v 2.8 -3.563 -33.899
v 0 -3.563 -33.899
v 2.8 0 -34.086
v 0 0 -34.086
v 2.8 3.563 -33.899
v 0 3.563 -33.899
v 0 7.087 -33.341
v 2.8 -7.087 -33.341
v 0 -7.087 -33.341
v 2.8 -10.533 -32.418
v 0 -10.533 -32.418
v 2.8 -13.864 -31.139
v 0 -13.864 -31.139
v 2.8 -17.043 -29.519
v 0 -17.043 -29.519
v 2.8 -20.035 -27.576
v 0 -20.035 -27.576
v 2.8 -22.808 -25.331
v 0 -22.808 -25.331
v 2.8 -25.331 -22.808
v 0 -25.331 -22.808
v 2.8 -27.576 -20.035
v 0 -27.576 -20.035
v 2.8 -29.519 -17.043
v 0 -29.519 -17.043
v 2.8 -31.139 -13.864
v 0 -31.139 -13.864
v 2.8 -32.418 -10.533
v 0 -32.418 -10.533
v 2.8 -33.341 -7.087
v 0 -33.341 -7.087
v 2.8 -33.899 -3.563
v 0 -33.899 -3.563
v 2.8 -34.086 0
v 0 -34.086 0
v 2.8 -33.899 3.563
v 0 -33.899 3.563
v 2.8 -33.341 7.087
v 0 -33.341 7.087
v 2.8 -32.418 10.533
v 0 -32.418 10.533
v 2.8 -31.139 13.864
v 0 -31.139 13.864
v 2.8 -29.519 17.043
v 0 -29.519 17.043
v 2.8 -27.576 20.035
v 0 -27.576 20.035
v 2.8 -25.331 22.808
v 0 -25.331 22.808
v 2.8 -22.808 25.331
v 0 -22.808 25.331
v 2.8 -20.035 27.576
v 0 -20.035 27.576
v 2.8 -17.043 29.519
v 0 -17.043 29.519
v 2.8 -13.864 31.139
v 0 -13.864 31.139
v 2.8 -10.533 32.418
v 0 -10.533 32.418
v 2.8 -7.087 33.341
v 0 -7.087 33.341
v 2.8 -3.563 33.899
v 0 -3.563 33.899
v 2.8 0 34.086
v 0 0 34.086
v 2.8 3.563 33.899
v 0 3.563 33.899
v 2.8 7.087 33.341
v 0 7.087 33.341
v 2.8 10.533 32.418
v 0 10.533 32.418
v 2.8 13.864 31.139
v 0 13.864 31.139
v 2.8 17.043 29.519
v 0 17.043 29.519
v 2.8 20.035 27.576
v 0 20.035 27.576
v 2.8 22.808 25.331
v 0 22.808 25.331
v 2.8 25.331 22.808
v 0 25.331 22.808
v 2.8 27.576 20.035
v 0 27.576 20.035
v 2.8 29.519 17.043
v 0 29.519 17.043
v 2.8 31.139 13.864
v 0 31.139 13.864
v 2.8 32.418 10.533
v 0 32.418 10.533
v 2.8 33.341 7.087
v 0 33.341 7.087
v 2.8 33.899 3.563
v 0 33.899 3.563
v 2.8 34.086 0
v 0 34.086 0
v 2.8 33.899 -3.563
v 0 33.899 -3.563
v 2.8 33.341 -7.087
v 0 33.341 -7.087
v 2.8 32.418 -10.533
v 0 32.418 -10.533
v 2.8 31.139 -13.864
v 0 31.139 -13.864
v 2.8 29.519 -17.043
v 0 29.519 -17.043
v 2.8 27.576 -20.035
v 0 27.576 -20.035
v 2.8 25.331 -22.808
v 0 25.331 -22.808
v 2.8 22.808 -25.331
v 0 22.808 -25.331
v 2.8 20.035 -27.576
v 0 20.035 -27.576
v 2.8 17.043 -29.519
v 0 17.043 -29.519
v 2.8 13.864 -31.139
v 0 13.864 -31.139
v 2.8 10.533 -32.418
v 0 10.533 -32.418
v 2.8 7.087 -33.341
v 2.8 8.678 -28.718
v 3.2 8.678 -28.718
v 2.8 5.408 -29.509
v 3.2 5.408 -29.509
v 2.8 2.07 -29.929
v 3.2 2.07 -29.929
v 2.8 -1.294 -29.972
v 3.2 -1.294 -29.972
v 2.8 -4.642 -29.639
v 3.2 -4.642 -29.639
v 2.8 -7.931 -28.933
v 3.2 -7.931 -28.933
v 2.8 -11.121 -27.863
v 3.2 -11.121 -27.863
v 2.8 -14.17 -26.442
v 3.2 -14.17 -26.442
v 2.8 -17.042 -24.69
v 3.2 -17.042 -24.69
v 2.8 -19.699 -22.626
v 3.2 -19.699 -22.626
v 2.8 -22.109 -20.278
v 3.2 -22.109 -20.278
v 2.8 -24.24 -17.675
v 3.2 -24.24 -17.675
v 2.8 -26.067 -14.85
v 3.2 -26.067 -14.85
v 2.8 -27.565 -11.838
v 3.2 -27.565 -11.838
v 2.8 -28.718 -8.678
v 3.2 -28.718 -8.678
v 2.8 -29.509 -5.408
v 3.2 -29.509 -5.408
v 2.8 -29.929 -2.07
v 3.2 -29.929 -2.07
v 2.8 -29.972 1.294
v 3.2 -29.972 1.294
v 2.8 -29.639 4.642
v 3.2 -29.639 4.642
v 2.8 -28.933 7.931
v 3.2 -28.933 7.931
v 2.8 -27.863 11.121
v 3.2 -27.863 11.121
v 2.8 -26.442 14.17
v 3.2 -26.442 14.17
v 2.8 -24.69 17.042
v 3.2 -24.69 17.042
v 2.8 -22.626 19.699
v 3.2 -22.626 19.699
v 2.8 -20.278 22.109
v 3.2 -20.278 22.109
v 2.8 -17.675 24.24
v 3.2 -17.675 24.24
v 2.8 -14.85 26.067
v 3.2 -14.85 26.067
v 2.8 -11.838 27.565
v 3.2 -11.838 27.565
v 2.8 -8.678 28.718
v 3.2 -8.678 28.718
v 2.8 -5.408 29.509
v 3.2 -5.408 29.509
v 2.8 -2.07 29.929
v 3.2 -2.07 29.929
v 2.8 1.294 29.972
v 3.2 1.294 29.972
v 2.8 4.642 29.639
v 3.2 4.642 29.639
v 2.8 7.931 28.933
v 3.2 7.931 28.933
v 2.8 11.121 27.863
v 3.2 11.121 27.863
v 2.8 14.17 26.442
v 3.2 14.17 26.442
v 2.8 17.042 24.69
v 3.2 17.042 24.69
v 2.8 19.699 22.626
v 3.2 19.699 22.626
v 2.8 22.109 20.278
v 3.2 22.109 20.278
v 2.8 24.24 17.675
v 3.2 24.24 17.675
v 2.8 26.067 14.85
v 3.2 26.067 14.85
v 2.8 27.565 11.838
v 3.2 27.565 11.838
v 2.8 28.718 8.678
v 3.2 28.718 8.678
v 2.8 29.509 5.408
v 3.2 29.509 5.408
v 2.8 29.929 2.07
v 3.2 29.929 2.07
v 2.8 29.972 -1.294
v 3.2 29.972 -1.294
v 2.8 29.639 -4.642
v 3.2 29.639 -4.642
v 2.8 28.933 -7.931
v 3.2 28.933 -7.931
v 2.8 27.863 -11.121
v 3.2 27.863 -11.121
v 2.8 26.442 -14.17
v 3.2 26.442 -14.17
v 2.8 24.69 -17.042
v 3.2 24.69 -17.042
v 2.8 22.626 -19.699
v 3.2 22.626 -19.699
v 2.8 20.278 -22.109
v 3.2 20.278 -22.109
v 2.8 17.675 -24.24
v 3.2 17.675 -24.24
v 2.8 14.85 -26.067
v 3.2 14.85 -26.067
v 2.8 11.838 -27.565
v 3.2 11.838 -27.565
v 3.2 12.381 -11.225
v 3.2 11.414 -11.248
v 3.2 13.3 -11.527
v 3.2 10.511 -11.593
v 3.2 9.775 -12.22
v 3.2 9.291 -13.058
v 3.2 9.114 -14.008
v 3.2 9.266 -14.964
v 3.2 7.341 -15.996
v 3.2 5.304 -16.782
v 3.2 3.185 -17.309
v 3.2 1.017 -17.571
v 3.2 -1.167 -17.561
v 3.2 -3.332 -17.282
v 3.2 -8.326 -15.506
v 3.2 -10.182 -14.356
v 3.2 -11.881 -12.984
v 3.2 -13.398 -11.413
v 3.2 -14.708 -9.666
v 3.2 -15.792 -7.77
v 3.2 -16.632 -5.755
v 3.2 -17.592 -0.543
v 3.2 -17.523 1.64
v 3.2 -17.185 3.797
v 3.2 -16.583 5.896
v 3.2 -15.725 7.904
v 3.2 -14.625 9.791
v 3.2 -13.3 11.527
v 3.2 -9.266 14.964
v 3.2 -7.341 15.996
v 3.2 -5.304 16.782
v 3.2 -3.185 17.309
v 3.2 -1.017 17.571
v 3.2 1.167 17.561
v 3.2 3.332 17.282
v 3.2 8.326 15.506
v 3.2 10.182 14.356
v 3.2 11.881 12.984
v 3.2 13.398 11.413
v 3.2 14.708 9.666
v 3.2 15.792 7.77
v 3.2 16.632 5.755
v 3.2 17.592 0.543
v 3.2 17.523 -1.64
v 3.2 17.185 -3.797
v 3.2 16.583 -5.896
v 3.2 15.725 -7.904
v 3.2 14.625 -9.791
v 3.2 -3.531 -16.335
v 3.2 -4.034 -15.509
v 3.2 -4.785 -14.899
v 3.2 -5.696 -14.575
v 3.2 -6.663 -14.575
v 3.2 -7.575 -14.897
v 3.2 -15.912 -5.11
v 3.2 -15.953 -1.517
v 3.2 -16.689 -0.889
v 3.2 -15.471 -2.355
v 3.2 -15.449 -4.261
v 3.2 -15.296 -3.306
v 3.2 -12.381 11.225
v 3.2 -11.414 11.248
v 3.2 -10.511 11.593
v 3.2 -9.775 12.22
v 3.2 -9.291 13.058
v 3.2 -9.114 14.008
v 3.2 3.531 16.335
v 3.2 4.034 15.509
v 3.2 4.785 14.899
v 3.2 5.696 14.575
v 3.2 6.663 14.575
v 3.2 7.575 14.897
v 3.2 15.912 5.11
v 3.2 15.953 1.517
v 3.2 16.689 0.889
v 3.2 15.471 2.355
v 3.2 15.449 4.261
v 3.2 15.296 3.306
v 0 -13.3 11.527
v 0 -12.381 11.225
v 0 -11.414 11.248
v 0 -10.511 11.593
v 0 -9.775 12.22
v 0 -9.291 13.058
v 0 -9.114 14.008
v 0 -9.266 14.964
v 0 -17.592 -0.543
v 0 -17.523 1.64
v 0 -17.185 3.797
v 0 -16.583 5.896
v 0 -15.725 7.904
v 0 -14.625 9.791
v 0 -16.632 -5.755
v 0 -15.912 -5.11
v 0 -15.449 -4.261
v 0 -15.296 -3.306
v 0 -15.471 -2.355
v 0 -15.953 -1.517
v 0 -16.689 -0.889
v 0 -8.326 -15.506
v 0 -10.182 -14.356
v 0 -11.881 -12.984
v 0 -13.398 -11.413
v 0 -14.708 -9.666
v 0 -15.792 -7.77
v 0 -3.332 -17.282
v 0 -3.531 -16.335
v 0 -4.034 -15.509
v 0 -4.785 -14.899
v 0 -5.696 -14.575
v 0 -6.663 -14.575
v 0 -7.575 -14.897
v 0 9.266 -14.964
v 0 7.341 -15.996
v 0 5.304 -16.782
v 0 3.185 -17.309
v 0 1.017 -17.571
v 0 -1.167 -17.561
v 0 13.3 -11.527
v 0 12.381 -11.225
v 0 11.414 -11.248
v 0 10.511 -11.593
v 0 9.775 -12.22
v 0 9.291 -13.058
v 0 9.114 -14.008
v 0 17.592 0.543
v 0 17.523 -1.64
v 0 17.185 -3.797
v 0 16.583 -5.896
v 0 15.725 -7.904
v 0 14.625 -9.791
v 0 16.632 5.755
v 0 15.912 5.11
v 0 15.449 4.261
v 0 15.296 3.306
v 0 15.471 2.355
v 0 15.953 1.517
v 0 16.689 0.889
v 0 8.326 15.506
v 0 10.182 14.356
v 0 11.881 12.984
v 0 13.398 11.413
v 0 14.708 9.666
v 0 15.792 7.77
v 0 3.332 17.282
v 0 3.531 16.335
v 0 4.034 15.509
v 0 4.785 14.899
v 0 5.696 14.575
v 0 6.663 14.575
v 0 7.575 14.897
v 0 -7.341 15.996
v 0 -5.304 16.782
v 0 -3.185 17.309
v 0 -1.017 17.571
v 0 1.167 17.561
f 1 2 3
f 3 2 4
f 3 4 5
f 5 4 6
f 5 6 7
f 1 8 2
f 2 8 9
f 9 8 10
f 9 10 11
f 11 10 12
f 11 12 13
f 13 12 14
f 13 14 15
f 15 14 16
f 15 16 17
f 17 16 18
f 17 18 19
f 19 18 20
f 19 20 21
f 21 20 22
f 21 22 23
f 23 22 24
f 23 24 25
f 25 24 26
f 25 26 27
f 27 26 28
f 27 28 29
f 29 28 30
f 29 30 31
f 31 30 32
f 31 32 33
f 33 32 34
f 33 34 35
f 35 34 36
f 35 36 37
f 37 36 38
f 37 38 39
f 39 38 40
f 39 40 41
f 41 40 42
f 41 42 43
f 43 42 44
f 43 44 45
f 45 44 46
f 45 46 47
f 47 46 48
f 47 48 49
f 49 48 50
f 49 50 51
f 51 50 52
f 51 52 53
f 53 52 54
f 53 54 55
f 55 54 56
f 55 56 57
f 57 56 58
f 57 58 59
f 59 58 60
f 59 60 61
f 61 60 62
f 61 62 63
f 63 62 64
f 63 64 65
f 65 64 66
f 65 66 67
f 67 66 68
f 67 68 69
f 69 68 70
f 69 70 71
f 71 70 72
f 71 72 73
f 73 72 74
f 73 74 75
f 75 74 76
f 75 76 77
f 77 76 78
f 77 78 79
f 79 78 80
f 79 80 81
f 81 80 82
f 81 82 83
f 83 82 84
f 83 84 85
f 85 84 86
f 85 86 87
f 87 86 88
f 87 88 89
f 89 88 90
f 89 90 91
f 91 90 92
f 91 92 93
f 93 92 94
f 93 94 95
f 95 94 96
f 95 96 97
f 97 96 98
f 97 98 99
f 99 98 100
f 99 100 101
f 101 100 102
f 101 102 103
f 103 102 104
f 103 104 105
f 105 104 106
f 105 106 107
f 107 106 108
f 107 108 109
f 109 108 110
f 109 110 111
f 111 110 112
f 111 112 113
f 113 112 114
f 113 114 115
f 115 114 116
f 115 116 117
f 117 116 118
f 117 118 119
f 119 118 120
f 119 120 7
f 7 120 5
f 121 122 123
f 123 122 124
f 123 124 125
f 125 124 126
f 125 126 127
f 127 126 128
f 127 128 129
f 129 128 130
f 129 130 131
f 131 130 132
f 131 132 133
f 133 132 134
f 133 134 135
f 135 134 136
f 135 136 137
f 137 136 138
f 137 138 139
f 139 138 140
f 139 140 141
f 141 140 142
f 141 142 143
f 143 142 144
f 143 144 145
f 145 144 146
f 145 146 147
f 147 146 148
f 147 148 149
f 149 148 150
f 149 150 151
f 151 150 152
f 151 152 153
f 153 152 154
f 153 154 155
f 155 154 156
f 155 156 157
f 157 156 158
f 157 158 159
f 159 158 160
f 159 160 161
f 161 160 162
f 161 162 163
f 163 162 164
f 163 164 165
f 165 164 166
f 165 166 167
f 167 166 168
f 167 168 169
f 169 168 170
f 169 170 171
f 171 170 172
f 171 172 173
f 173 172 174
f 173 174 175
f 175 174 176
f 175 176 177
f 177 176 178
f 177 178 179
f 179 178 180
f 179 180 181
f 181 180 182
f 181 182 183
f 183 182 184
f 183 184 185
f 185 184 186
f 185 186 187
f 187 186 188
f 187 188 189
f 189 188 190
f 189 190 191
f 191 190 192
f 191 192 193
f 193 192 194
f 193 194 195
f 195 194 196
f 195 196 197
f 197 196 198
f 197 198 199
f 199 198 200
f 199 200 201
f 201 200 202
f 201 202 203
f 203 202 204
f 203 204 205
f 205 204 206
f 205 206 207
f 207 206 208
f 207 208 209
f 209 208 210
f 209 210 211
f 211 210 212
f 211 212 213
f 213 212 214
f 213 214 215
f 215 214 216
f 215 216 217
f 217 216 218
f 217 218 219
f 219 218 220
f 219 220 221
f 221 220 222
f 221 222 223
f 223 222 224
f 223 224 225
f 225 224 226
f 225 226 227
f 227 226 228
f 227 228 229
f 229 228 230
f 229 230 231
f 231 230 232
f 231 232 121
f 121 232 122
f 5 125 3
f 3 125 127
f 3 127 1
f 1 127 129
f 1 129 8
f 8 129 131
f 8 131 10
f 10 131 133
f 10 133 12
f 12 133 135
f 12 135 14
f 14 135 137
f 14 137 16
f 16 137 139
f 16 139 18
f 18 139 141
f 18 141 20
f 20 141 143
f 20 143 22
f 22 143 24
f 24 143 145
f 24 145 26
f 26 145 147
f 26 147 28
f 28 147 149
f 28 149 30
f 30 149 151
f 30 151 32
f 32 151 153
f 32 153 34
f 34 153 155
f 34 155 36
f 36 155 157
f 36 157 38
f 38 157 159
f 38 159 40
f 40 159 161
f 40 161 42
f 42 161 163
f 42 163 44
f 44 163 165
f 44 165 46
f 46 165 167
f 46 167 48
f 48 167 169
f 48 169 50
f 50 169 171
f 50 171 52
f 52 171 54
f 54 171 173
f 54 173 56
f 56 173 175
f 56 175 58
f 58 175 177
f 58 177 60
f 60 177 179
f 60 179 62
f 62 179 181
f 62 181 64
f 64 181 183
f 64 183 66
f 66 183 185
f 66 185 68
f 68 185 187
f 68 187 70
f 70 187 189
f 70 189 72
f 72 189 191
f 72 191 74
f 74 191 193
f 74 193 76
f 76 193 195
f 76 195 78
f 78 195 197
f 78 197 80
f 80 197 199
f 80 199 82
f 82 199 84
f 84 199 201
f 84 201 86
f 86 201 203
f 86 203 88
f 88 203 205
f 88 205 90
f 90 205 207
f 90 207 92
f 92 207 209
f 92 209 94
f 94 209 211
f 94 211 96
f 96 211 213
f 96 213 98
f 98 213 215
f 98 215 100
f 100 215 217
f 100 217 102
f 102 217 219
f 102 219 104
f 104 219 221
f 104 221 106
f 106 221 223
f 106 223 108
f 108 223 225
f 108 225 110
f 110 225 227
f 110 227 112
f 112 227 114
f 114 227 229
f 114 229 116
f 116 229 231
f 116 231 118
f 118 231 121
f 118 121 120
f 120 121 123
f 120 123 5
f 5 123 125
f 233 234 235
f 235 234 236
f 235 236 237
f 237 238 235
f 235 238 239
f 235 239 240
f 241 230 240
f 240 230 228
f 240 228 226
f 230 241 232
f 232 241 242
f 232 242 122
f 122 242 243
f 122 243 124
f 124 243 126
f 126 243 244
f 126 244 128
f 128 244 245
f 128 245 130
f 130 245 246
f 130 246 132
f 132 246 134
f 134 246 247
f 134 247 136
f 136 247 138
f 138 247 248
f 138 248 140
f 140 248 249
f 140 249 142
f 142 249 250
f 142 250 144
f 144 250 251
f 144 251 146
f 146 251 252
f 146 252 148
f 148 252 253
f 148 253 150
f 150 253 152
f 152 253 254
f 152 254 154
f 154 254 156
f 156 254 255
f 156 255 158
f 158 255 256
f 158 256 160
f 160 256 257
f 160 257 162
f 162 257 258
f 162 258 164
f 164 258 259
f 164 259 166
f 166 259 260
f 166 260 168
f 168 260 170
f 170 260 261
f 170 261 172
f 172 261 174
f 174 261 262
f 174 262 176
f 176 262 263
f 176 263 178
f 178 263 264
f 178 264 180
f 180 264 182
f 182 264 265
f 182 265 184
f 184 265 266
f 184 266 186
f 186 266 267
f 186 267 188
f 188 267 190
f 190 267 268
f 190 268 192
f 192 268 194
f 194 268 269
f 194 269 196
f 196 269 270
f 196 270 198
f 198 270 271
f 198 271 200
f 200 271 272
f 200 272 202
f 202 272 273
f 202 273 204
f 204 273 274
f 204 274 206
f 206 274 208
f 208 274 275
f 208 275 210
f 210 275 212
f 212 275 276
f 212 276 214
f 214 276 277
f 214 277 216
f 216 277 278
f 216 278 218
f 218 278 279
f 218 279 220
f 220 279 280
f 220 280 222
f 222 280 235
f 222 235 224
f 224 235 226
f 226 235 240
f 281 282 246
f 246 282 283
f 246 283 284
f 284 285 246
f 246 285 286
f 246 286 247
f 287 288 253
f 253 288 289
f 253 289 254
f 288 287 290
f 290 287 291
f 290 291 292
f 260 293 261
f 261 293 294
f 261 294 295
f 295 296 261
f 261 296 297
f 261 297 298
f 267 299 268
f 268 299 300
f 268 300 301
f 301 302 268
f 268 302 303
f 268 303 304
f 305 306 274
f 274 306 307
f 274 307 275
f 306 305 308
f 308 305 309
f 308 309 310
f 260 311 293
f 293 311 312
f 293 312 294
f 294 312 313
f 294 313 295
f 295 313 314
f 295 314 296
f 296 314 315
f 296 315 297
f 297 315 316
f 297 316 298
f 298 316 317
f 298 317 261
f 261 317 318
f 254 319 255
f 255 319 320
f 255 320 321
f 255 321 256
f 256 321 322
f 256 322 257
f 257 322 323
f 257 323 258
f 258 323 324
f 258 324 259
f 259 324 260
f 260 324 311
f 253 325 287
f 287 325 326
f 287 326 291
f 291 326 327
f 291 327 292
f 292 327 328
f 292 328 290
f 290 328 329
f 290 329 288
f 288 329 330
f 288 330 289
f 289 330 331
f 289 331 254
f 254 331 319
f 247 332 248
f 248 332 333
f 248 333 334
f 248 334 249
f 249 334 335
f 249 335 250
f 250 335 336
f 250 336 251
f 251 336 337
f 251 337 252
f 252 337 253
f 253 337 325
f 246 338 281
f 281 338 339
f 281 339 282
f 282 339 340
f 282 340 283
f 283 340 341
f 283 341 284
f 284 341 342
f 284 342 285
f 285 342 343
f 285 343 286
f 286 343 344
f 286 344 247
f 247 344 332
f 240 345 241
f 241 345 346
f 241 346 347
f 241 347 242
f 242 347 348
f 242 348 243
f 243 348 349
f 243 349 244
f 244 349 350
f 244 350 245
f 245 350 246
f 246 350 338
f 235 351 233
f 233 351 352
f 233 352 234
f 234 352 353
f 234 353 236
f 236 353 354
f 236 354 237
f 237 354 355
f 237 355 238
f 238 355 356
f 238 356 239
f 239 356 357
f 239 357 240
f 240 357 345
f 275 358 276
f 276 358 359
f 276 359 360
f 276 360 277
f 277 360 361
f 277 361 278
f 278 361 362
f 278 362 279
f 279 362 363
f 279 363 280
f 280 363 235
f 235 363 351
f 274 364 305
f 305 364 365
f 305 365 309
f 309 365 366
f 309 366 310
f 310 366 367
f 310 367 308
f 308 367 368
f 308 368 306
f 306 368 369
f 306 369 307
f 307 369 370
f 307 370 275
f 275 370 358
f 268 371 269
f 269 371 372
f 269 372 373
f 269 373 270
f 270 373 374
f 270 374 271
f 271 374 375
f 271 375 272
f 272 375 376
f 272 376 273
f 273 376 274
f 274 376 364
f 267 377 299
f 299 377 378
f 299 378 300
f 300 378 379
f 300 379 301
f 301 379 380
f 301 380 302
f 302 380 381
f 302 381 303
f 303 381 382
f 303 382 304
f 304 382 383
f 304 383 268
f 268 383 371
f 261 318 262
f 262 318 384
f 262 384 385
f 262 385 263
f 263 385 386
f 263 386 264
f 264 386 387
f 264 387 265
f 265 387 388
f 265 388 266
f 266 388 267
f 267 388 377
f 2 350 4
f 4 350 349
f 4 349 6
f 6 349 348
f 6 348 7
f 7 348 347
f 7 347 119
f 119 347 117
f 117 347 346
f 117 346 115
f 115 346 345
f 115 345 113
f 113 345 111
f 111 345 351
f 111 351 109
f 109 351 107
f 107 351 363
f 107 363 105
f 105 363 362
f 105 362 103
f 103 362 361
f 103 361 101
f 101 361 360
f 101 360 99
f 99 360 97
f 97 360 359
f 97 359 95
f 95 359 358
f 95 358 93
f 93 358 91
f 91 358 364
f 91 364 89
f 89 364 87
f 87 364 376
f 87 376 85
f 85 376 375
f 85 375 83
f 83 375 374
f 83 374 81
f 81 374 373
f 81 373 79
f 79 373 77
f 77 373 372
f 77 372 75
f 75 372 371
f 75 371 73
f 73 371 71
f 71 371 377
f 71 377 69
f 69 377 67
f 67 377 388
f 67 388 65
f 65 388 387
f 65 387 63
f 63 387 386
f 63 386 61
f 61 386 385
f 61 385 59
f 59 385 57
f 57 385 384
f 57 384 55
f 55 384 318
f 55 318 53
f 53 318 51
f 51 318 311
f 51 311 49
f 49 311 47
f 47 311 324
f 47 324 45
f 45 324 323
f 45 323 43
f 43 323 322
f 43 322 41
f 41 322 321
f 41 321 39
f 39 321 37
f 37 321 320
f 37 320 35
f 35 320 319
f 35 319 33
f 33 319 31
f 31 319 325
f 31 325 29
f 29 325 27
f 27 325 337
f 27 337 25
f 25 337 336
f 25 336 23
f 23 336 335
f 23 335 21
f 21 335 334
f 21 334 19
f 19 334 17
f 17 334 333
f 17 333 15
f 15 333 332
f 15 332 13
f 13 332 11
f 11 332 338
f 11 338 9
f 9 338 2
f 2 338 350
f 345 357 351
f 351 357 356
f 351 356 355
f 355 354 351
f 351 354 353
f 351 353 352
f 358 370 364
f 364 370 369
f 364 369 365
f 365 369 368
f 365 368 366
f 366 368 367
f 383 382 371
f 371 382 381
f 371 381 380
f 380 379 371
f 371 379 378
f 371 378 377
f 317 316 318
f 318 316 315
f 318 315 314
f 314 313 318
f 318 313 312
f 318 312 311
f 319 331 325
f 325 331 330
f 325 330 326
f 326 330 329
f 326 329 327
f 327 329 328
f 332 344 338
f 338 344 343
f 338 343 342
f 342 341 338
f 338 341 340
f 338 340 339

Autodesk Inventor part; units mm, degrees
ref_plane "YZ Plane" through (0, 0, 0) normal (1, 0, 0) x (0, 1, 0)
ref_plane "XZ Plane" through (0, 0, 0) normal (0, 1, 0) x (-1, 0, 0)
ref_plane "XY Plane" through (0, 0, 0) normal (0, 0, 1) x (1, 0, 0)
sketch "Sketch_1" plane through (0, 0, 0) normal (0, 0, 1) x (1, 0, 0)
  line L0 (7.2, 0) -> (0, 0)
  line L1 (0, 8.5) -> (3.2, 8.5)
  line L2 (3.2, 8.5) -> (3.2, 105.8394)
  arc A0 (3.2, 105.8394) -> (2.2899, 109) centre (-4.7294, 105.2675) ccw
  line L3 (2.2899, 109) -> (0.7899, 109)
  arc A1 (0.7899, 109) -> (0, 105.8394) centre (7.9441, 105.5329) ccw
  line L4 (0, 105.8394) -> (0, 8.5)
  dimension "d16" = 1.5
  dimension "d17" = 3.2
revolve "Revolution1" add sketch "Sketch_1" angle 360 about axis through (7.2, 0, 0) along (1, 0, 0)
sketch "Sketch_2" plane through (3.6, 0, 0) normal (1, 0, 0) x (0, 0, -1)
  circle A0 centre (0, 0) radius 145.3333
  arc A1 (-108.9989, 0.5) -> (-108.9989, -0.5) centre (0, 0) ccw
  line L0 (-108.9989, -0.5) -> (-103.5248, -2.6502)
  arc A2 (-103.0895, -9.8477) -> (-103.5248, -2.6502) centre (-104.9781, -6.35) ccw
  line L1 (-103.0895, -9.8477) -> (-108.2644, -12.642)
  arc A3 (-108.2644, -12.642) -> (-108.1439, -13.6347) centre (0, 0) ccw
  line L2 (-108.1439, -13.6347) -> (-102.4506, -15.1094)
  arc A4 (-101.1508, -22.2019) -> (-102.4506, -15.1094) centre (-103.4473, -18.9574) ccw
  line L3 (-101.1508, -22.2019) -> (-105.9512, -25.5997)
  arc A5 (-105.9512, -25.5997) -> (-105.7119, -26.5706) centre (0, 0) ccw
  line L4 (-105.7119, -26.5706) -> (-99.8824, -27.3483)
  arc A6 (-97.7372, -34.2324) -> (-99.8824, -27.3483) centre (-100.408, -31.2884) ccw
  line L5 (-97.7372, -34.2324) -> (-102.093, -38.184)
  arc A7 (-102.093, -38.184) -> (-101.7384, -39.119) centre (0, 0) ccw
  line L6 (-101.7384, -39.119) -> (-95.8576, -39.1884)
  arc A8 (-92.8983, -45.7638) -> (-95.8576, -39.1884) centre (-95.9045, -43.1631) ccw
  line L7 (-92.8983, -45.7638) -> (-96.7461, -50.2116)
  arc A9 (-96.7461, -50.2116) -> (-96.2813, -51.097) centre (0, 0) ccw
  line L8 (-96.2813, -51.097) -> (-90.4351, -50.457)
  arc A10 (-86.7048, -56.6277) -> (-90.4351, -50.457) centre (-90.0025, -54.4084) ccw
  line L9 (-86.7048, -56.6277) -> (-89.9883, -61.5069)
  arc A11 (-89.9883, -61.5069) -> (-89.4203, -62.3299) centre (0, 0) ccw
  line L10 (-89.4203, -62.3299) -> (-83.6938, -60.9899)
  arc A12 (-79.2469, -66.666) -> (-83.6938, -60.9899) centre (-82.7881, -64.8603) ccw
  line L11 (-79.2469, -66.666) -> (-81.9184, -71.9054)
  arc A13 (-81.9184, -71.9054) -> (-81.2553, -72.6539) centre (0, 0) ccw
  line L12 (-81.2553, -72.6539) -> (-75.732, -70.6334)
  arc A14 (-70.6334, -75.732) -> (-75.732, -70.6334) centre (-74.3664, -74.3664) ccw
  line L13 (-70.6334, -75.732) -> (-72.6539, -81.2553)
  arc A15 (-72.6539, -81.2553) -> (-71.9054, -81.9184) centre (0, 0) ccw
  line L14 (-71.9054, -81.9184) -> (-66.666, -79.2469)
  arc A16 (-60.9899, -83.6938) -> (-66.666, -79.2469) centre (-64.8603, -82.7881) ccw
  line L15 (-60.9899, -83.6938) -> (-62.3299, -89.4203)
  arc A17 (-62.3299, -89.4203) -> (-61.5069, -89.9883) centre (0, 0) ccw
  line L16 (-61.5069, -89.9883) -> (-56.6277, -86.7048)
  arc A18 (-50.457, -90.4351) -> (-56.6277, -86.7048) centre (-54.4084, -90.0025) ccw
  line L17 (-50.457, -90.4351) -> (-51.097, -96.2813)
  arc A19 (-51.097, -96.2813) -> (-50.2116, -96.7461) centre (0, 0) ccw
  line L18 (-50.2116, -96.7461) -> (-45.7638, -92.8983)
  arc A20 (-39.1884, -95.8576) -> (-45.7638, -92.8983) centre (-43.1631, -95.9045) ccw
  line L19 (-39.1884, -95.8576) -> (-39.119, -101.7384)
  arc A21 (-39.119, -101.7384) -> (-38.184, -102.093) centre (0, 0) ccw
  line L20 (-38.184, -102.093) -> (-34.2324, -97.7372)
  arc A22 (-27.3483, -99.8824) -> (-34.2324, -97.7372) centre (-31.2884, -100.408) ccw
  line L21 (-27.3483, -99.8824) -> (-26.5706, -105.7119)
  arc A23 (-26.5706, -105.7119) -> (-25.5997, -105.9512) centre (0, 0) ccw
  line L22 (-25.5997, -105.9512) -> (-22.2019, -101.1508)
  arc A24 (-15.1094, -102.4506) -> (-22.2019, -101.1508) centre (-18.9574, -103.4473) ccw
  line L23 (-15.1094, -102.4506) -> (-13.6347, -108.1439)
  arc A25 (-13.6347, -108.1439) -> (-12.642, -108.2644) centre (0, 0) ccw
  line L24 (-12.642, -108.2644) -> (-9.8477, -103.0895)
  arc A26 (-2.6502, -103.5248) -> (-9.8477, -103.0895) centre (-6.35, -104.9781) ccw
  line L25 (-2.6502, -103.5248) -> (-0.5, -108.9989)
  arc A27 (-0.5, -108.9989) -> (0.5, -108.9989) centre (0, 0) ccw
  line L26 (0.5, -108.9989) -> (2.6502, -103.5248)
  arc A28 (9.8477, -103.0895) -> (2.6502, -103.5248) centre (6.35, -104.9781) ccw
  line L27 (9.8477, -103.0895) -> (12.642, -108.2644)
  arc A29 (12.642, -108.2644) -> (13.6347, -108.1439) centre (0, 0) ccw
  line L28 (13.6347, -108.1439) -> (15.1094, -102.4506)
  arc A30 (22.2019, -101.1508) -> (15.1094, -102.4506) centre (18.9574, -103.4473) ccw
  line L29 (22.2019, -101.1508) -> (25.5997, -105.9512)
  arc A31 (25.5997, -105.9512) -> (26.5706, -105.7119) centre (0, 0) ccw
  line L30 (26.5706, -105.7119) -> (27.3483, -99.8824)
  arc A32 (34.2324, -97.7372) -> (27.3483, -99.8824) centre (31.2884, -100.408) ccw
  line L31 (34.2324, -97.7372) -> (38.184, -102.093)
  arc A33 (38.184, -102.093) -> (39.119, -101.7384) centre (0, 0) ccw
  line L32 (39.119, -101.7384) -> (39.1884, -95.8576)
  arc A34 (45.7638, -92.8983) -> (39.1884, -95.8576) centre (43.1631, -95.9045) ccw
  line L33 (45.7638, -92.8983) -> (50.2116, -96.7461)
  arc A35 (50.2116, -96.7461) -> (51.097, -96.2813) centre (0, 0) ccw
  line L34 (51.097, -96.2813) -> (50.457, -90.4351)
  arc A36 (56.6277, -86.7048) -> (50.457, -90.4351) centre (54.4084, -90.0025) ccw
  line L35 (56.6277, -86.7048) -> (61.5069, -89.9883)
  arc A37 (61.5069, -89.9883) -> (62.3299, -89.4203) centre (0, 0) ccw
  line L36 (62.3299, -89.4203) -> (60.9899, -83.6938)
  arc A38 (66.666, -79.2469) -> (60.9899, -83.6938) centre (64.8603, -82.7881) ccw
  line L37 (66.666, -79.2469) -> (71.9054, -81.9184)
  arc A39 (71.9054, -81.9184) -> (72.6539, -81.2553) centre (0, 0) ccw
  line L38 (72.6539, -81.2553) -> (70.6334, -75.732)
  arc A40 (75.732, -70.6334) -> (70.6334, -75.732) centre (74.3664, -74.3664) ccw
  line L39 (75.732, -70.6334) -> (81.2553, -72.6539)
  arc A41 (81.2553, -72.6539) -> (81.9184, -71.9054) centre (0, 0) ccw
  line L40 (81.9184, -71.9054) -> (79.2469, -66.666)
  arc A42 (83.6938, -60.9899) -> (79.2469, -66.666) centre (82.7881, -64.8603) ccw
  line L41 (83.6938, -60.9899) -> (89.4203, -62.3299)
  arc A43 (89.4203, -62.3299) -> (89.9883, -61.5069) centre (0, 0) ccw
  line L42 (89.9883, -61.5069) -> (86.7048, -56.6277)
  arc A44 (90.4351, -50.457) -> (86.7048, -56.6277) centre (90.0025, -54.4084) ccw
  line L43 (90.4351, -50.457) -> (96.2813, -51.097)
  arc A45 (96.2813, -51.097) -> (96.7461, -50.2116) centre (0, 0) ccw
  line L44 (96.7461, -50.2116) -> (92.8983, -45.7638)
  arc A46 (95.8576, -39.1884) -> (92.8983, -45.7638) centre (95.9045, -43.1631) ccw
  line L45 (95.8576, -39.1884) -> (101.7384, -39.119)
  arc A47 (101.7384, -39.119) -> (102.093, -38.184) centre (0, 0) ccw
  line L46 (102.093, -38.184) -> (97.7372, -34.2324)
  arc A48 (99.8824, -27.3483) -> (97.7372, -34.2324) centre (100.408, -31.2884) ccw
  line L47 (99.8824, -27.3483) -> (105.7119, -26.5706)
  arc A49 (105.7119, -26.5706) -> (105.9512, -25.5997) centre (0, 0) ccw
  line L48 (105.9512, -25.5997) -> (101.1508, -22.2019)
  arc A50 (102.4506, -15.1094) -> (101.1508, -22.2019) centre (103.4473, -18.9574) ccw
  line L49 (102.4506, -15.1094) -> (108.1439, -13.6347)
  arc A51 (108.1439, -13.6347) -> (108.2644, -12.642) centre (0, 0) ccw
  line L50 (108.2644, -12.642) -> (103.0895, -9.8477)
  arc A52 (103.5248, -2.6502) -> (103.0895, -9.8477) centre (104.9781, -6.35) ccw
  line L51 (103.5248, -2.6502) -> (108.9989, -0.5)
  arc A53 (108.9989, -0.5) -> (108.9989, 0.5) centre (0, 0) ccw
  line L52 (108.9989, 0.5) -> (103.5248, 2.6502)
  arc A54 (103.0895, 9.8477) -> (103.5248, 2.6502) centre (104.9781, 6.35) ccw
  line L53 (103.0895, 9.8477) -> (108.2644, 12.642)
  arc A55 (108.2644, 12.642) -> (108.1439, 13.6347) centre (0, 0) ccw
  line L54 (108.1439, 13.6347) -> (102.4506, 15.1094)
  arc A56 (101.1508, 22.2019) -> (102.4506, 15.1094) centre (103.4473, 18.9574) ccw
  line L55 (101.1508, 22.2019) -> (105.9512, 25.5997)
  arc A57 (105.9512, 25.5997) -> (105.7119, 26.5706) centre (0, 0) ccw
  line L56 (105.7119, 26.5706) -> (99.8824, 27.3483)
  arc A58 (97.7372, 34.2324) -> (99.8824, 27.3483) centre (100.408, 31.2884) ccw
  line L57 (97.7372, 34.2324) -> (102.093, 38.184)
  arc A59 (102.093, 38.184) -> (101.7384, 39.119) centre (0, 0) ccw
  line L58 (101.7384, 39.119) -> (95.8576, 39.1884)
  arc A60 (92.8983, 45.7638) -> (95.8576, 39.1884) centre (95.9045, 43.1631) ccw
  line L59 (92.8983, 45.7638) -> (96.7461, 50.2116)
  arc A61 (96.7461, 50.2116) -> (96.2813, 51.097) centre (0, 0) ccw
  line L60 (96.2813, 51.097) -> (90.4351, 50.457)
  arc A62 (86.7048, 56.6277) -> (90.4351, 50.457) centre (90.0025, 54.4084) ccw
  line L61 (86.7048, 56.6277) -> (89.9883, 61.5069)
  arc A63 (89.9883, 61.5069) -> (89.4203, 62.3299) centre (0, 0) ccw
  line L62 (89.4203, 62.3299) -> (83.6938, 60.9899)
  arc A64 (79.2469, 66.666) -> (83.6938, 60.9899) centre (82.7881, 64.8603) ccw
  line L63 (79.2469, 66.666) -> (81.9184, 71.9054)
  arc A65 (81.9184, 71.9054) -> (81.2553, 72.6539) centre (0, 0) ccw
  line L64 (81.2553, 72.6539) -> (75.732, 70.6334)
  arc A66 (70.6334, 75.732) -> (75.732, 70.6334) centre (74.3664, 74.3664) ccw
  line L65 (70.6334, 75.732) -> (72.6539, 81.2553)
  arc A67 (72.6539, 81.2553) -> (71.9054, 81.9184) centre (0, 0) ccw
  line L66 (71.9054, 81.9184) -> (66.666, 79.2469)
  arc A68 (60.9899, 83.6938) -> (66.666, 79.2469) centre (64.8603, 82.7881) ccw
  line L67 (60.9899, 83.6938) -> (62.3299, 89.4203)
  arc A69 (62.3299, 89.4203) -> (61.5069, 89.9883) centre (0, 0) ccw
  line L68 (61.5069, 89.9883) -> (56.6277, 86.7048)
  arc A70 (50.457, 90.4351) -> (56.6277, 86.7048) centre (54.4084, 90.0025) ccw
  line L69 (50.457, 90.4351) -> (51.097, 96.2813)
  arc A71 (51.097, 96.2813) -> (50.2116, 96.7461) centre (0, 0) ccw
  line L70 (50.2116, 96.7461) -> (45.7638, 92.8983)
  arc A72 (39.1884, 95.8576) -> (45.7638, 92.8983) centre (43.1631, 95.9045) ccw
  line L71 (39.1884, 95.8576) -> (39.119, 101.7384)
  arc A73 (39.119, 101.7384) -> (38.184, 102.093) centre (0, 0) ccw
  line L72 (38.184, 102.093) -> (34.2324, 97.7372)
  arc A74 (27.3483, 99.8824) -> (34.2324, 97.7372) centre (31.2884, 100.408) ccw
  line L73 (27.3483, 99.8824) -> (26.5706, 105.7119)
  arc A75 (26.5706, 105.7119) -> (25.5997, 105.9512) centre (0, 0) ccw
  line L74 (25.5997, 105.9512) -> (22.2019, 101.1508)
  arc A76 (15.1094, 102.4506) -> (22.2019, 101.1508) centre (18.9574, 103.4473) ccw
  line L75 (15.1094, 102.4506) -> (13.6347, 108.1439)
  arc A77 (13.6347, 108.1439) -> (12.642, 108.2644) centre (0, 0) ccw
  line L76 (12.642, 108.2644) -> (9.8477, 103.0895)
  arc A78 (2.6502, 103.5248) -> (9.8477, 103.0895) centre (6.35, 104.9781) ccw
  line L77 (2.6502, 103.5248) -> (0.5, 108.9989)
  arc A79 (0.5, 108.9989) -> (-0.5, 108.9989) centre (0, 0) ccw
  line L78 (-0.5, 108.9989) -> (-2.6502, 103.5248)
  arc A80 (-9.8477, 103.0895) -> (-2.6502, 103.5248) centre (-6.35, 104.9781) ccw
  line L79 (-9.8477, 103.0895) -> (-12.642, 108.2644)
  arc A81 (-12.642, 108.2644) -> (-13.6347, 108.1439) centre (0, 0) ccw
  line L80 (-13.6347, 108.1439) -> (-15.1094, 102.4506)
  arc A82 (-22.2019, 101.1508) -> (-15.1094, 102.4506) centre (-18.9574, 103.4473) ccw
  line L81 (-22.2019, 101.1508) -> (-25.5997, 105.9512)
  arc A83 (-25.5997, 105.9512) -> (-26.5706, 105.7119) centre (0, 0) ccw
  line L82 (-26.5706, 105.7119) -> (-27.3483, 99.8824)
  arc A84 (-34.2324, 97.7372) -> (-27.3483, 99.8824) centre (-31.2884, 100.408) ccw
  line L83 (-34.2324, 97.7372) -> (-38.184, 102.093)
  arc A85 (-38.184, 102.093) -> (-39.119, 101.7384) centre (0, 0) ccw
  line L84 (-39.119, 101.7384) -> (-39.1884, 95.8576)
  arc A86 (-45.7638, 92.8983) -> (-39.1884, 95.8576) centre (-43.1631, 95.9045) ccw
  line L85 (-45.7638, 92.8983) -> (-50.2116, 96.7461)
  arc A87 (-50.2116, 96.7461) -> (-51.097, 96.2813) centre (0, 0) ccw
  line L86 (-51.097, 96.2813) -> (-50.457, 90.4351)
  arc A88 (-56.6277, 86.7048) -> (-50.457, 90.4351) centre (-54.4084, 90.0025) ccw
  line L87 (-56.6277, 86.7048) -> (-61.5069, 89.9883)
  arc A89 (-61.5069, 89.9883) -> (-62.3299, 89.4203) centre (0, 0) ccw
  line L88 (-62.3299, 89.4203) -> (-60.9899, 83.6938)
  arc A90 (-66.666, 79.2469) -> (-60.9899, 83.6938) centre (-64.8603, 82.7881) ccw
  line L89 (-66.666, 79.2469) -> (-71.9054, 81.9184)
  arc A91 (-71.9054, 81.9184) -> (-72.6539, 81.2553) centre (0, 0) ccw
  line L90 (-72.6539, 81.2553) -> (-70.6334, 75.732)
  arc A92 (-75.732, 70.6334) -> (-70.6334, 75.732) centre (-74.3664, 74.3664) ccw
  line L91 (-75.732, 70.6334) -> (-81.2553, 72.6539)
  arc A93 (-81.2553, 72.6539) -> (-81.9184, 71.9054) centre (0, 0) ccw
  line L92 (-81.9184, 71.9054) -> (-79.2469, 66.666)
  arc A94 (-83.6938, 60.9899) -> (-79.2469, 66.666) centre (-82.7881, 64.8603) ccw
  line L93 (-83.6938, 60.9899) -> (-89.4203, 62.3299)
  arc A95 (-89.4203, 62.3299) -> (-89.9883, 61.5069) centre (0, 0) ccw
  line L94 (-89.9883, 61.5069) -> (-86.7048, 56.6277)
  arc A96 (-90.4351, 50.457) -> (-86.7048, 56.6277) centre (-90.0025, 54.4084) ccw
  line L95 (-90.4351, 50.457) -> (-96.2813, 51.097)
  arc A97 (-96.2813, 51.097) -> (-96.7461, 50.2116) centre (0, 0) ccw
  line L96 (-96.7461, 50.2116) -> (-92.8983, 45.7638)
  arc A98 (-95.8576, 39.1884) -> (-92.8983, 45.7638) centre (-95.9045, 43.1631) ccw
  line L97 (-95.8576, 39.1884) -> (-101.7384, 39.119)
  arc A99 (-101.7384, 39.119) -> (-102.093, 38.184) centre (0, 0) ccw
  line L98 (-102.093, 38.184) -> (-97.7372, 34.2324)
  arc A100 (-99.8824, 27.3483) -> (-97.7372, 34.2324) centre (-100.408, 31.2884) ccw
  line L99 (-99.8824, 27.3483) -> (-105.7119, 26.5706)
  arc A101 (-105.7119, 26.5706) -> (-105.9512, 25.5997) centre (0, 0) ccw
  line L100 (-105.9512, 25.5997) -> (-101.1508, 22.2019)
  arc A102 (-102.4506, 15.1094) -> (-101.1508, 22.2019) centre (-103.4473, 18.9574) ccw
  line L101 (-102.4506, 15.1094) -> (-108.1439, 13.6347)
  arc A103 (-108.1439, 13.6347) -> (-108.2644, 12.642) centre (0, 0) ccw
  line L102 (-108.2644, 12.642) -> (-103.0895, 9.8477)
  arc A104 (-103.5248, 2.6502) -> (-103.0895, 9.8477) centre (-104.9781, 6.35) ccw
  line L103 (-103.5248, 2.6502) -> (-108.9989, 0.5)
extrude "Extrusion1" cut sketch "Sketch_2" along normal mid plane 7.6
sketch "スケッチ4" plane through (3.2, 18.9574, -103.4473) normal (1, 0, 0) x (0, 0.180255, -0.9836199)
  line L0 (-1.9941, -8.896) -> (0.3565, -8.1331) projected
  arc A0 (0.3565, -8.1331) -> (0.5674, -4.646) centre (-105.17, 0) ccw projected
  line L1 (0.5674, -4.646) -> (-1.674, -3.6053) projected
  arc A1 (-1.674, 3.6053) -> (-1.674, -3.6053) centre (0, 0) ccw projected
  line L2 (-1.674, 3.6053) -> (0.5674, 4.646) projected
  arc A2 (0.5674, 4.646) -> (0.3565, 8.1331) centre (-105.17, 0) ccw projected
  line L3 (0.3565, 8.1331) -> (-1.9941, 8.896) projected
  arc A3 (-2.8632, 16.0541) -> (-1.9941, 8.896) centre (-0.7668, 12.6768) ccw projected
  line L4 (-2.8632, 16.0541) -> (-0.7636, 17.3574) projected
  arc A4 (-0.7636, 17.3574) -> (-1.3933, 20.7936) centre (-105.17, 0) ccw projected
  line L5 (-1.3933, 20.7936) -> (-3.8186, 21.2677) projected
  arc A5 (-5.5442, 28.2688) -> (-3.8186, 21.2677) centre (-3.056, 25.1688) ccw projected
  line L6 (-5.5442, 28.2688) -> (-3.617, 29.8157) projected
  arc A6 (-3.617, 29.8157) -> (-4.6563, 33.1509) centre (-105.17, 0) ccw projected
  line L7 (-4.6563, 33.1509) -> (-7.1211, 33.3292) projected
  arc A7 (-9.678, 40.0712) -> (-7.1211, 33.3292) centre (-6.8343, 37.2938) ccw projected
  line L8 (-9.678, 40.0712) -> (-7.9513, 41.8391) projected
  arc A8 (-7.9513, 41.8391) -> (-9.3851, 45.0247) centre (-105.17, 0) ccw projected
  line L9 (-9.3851, 45.0247) -> (-11.8534, 44.9046) projected
  arc A9 (-15.2043, 51.2893) -> (-11.8534, 44.9046) centre (-12.0466, 48.8749) ccw projected
  line L10 (-15.2043, 51.2893) -> (-13.7033, 53.2525) projected
  arc A10 (-13.7033, 53.2525) -> (-15.5106, 56.2421) centre (-105.17, 0) ccw projected
  line L11 (-15.5106, 56.2421) -> (-17.9464, 55.8253) projected
  arc A11 (-22.0425, 61.7595) -> (-17.9464, 55.8253) centre (-18.6168, 59.7434) ccw projected
  line L12 (-22.0425, 61.7595) -> (-20.7891, 63.8893) projected
  arc A12 (-20.7891, 63.8893) -> (-22.9435, 66.6392) centre (-105.17, 0) ccw projected
  line L13 (-22.9435, 66.6392) -> (-25.3114, 65.9319) projected
  arc A13 (-30.0929, 71.3291) -> (-25.3114, 65.9319) centre (-26.4491, 69.7406) ccw projected
  line L14 (-30.0929, 71.3291) -> (-29.1053, 73.5945) projected
  arc A14 (-29.1053, 73.5945) -> (-31.5755, 76.0647) centre (-105.17, 0) ccw projected
  line L15 (-31.5755, 76.0647) -> (-33.8409, 75.0771) projected
  arc A15 (-39.2381, 79.8586) -> (-33.8409, 75.0771) centre (-35.4294, 78.7209) ccw projected
  line L16 (-39.2381, 79.8586) -> (-38.5308, 82.2265) projected
  arc A16 (-38.5308, 82.2265) -> (-41.2807, 84.3809) centre (-105.17, 0) ccw projected
  line L17 (-41.2807, 84.3809) -> (-43.4105, 83.1275) projected
  arc A17 (-49.3447, 87.2236) -> (-43.4105, 83.1275) centre (-45.4266, 86.5532) ccw projected
  line L18 (-49.3447, 87.2236) -> (-48.9279, 89.6594) projected
  arc A18 (-48.9279, 89.6594) -> (-51.9175, 91.4667) centre (-105.17, 0) ccw projected
  line L19 (-51.9175, 91.4667) -> (-53.8807, 89.9657) projected
  arc A19 (-60.2654, 93.3166) -> (-53.8807, 89.9657) centre (-56.2951, 93.1234) ccw projected
  line L20 (-60.2654, 93.3166) -> (-60.1453, 95.7849) projected
  arc A20 (-60.1453, 95.7849) -> (-63.3309, 97.2187) centre (-105.17, 0) ccw projected
  line L21 (-63.3309, 97.2187) -> (-65.0988, 95.492) projected
  arc A21 (-71.8408, 98.0489) -> (-65.0988, 95.492) centre (-67.8762, 98.3357) ccw projected
  line L22 (-71.8408, 98.0489) -> (-72.0191, 100.5137) projected
  arc A22 (-72.0191, 100.5137) -> (-75.3543, 101.553) centre (-105.17, 0) ccw projected
  line L23 (-75.3543, 101.553) -> (-76.9012, 99.6258) projected
  arc A23 (-83.9023, 101.3514) -> (-76.9012, 99.6258) centre (-80.0012, 102.114) ccw projected
  line L24 (-83.9023, 101.3514) -> (-84.3764, 103.7767) projected
  arc A24 (-84.3764, 103.7767) -> (-87.8126, 104.4064) centre (-105.17, 0) ccw projected
  line L25 (-87.8126, 104.4064) -> (-89.1159, 102.3068) projected
  arc A25 (-96.274, 103.1759) -> (-89.1159, 102.3068) centre (-92.4932, 104.4032) ccw projected
  line L26 (-96.274, 103.1759) -> (-97.0369, 105.5265) projected
  arc A26 (-97.0369, 105.5265) -> (-100.524, 105.7374) centre (-105.17, 0) ccw projected
  line L27 (-100.524, 105.7374) -> (-101.5647, 103.496) projected
  arc A27 (-108.7753, 103.496) -> (-101.5647, 103.496) centre (-105.17, 105.17) ccw projected
  line L28 (-108.7753, 103.496) -> (-109.816, 105.7374) projected
  arc A28 (-109.816, 105.7374) -> (-113.3031, 105.5265) centre (-105.17, 0) ccw projected
  line L29 (-113.3031, 105.5265) -> (-114.066, 103.1759) projected
  arc A29 (-121.2241, 102.3068) -> (-114.066, 103.1759) centre (-117.8468, 104.4032) ccw projected
  line L30 (-121.2241, 102.3068) -> (-122.5274, 104.4064) projected
  arc A30 (-122.5274, 104.4064) -> (-125.9636, 103.7767) centre (-105.17, 0) ccw projected
  line L31 (-125.9636, 103.7767) -> (-126.4377, 101.3514) projected
  arc A31 (-133.4388, 99.6258) -> (-126.4377, 101.3514) centre (-130.3388, 102.114) ccw projected
  line L32 (-133.4388, 99.6258) -> (-134.9857, 101.553) projected
  arc A32 (-134.9857, 101.553) -> (-138.3209, 100.5137) centre (-105.17, 0) ccw projected
  line L33 (-138.3209, 100.5137) -> (-138.4992, 98.0489) projected
  arc A33 (-145.2412, 95.492) -> (-138.4992, 98.0489) centre (-142.4638, 98.3357) ccw projected
  line L34 (-145.2412, 95.492) -> (-147.0091, 97.2187) projected
  arc A34 (-147.0091, 97.2187) -> (-150.1947, 95.7849) centre (-105.17, 0) ccw projected
  line L35 (-150.1947, 95.7849) -> (-150.0746, 93.3166) projected
  arc A35 (-156.4593, 89.9657) -> (-150.0746, 93.3166) centre (-154.0449, 93.1234) ccw projected
  line L36 (-156.4593, 89.9657) -> (-158.4225, 91.4667) projected
  arc A36 (-158.4225, 91.4667) -> (-161.4121, 89.6594) centre (-105.17, 0) ccw projected
  line L37 (-161.4121, 89.6594) -> (-160.9953, 87.2236) projected
  arc A37 (-166.9295, 83.1275) -> (-160.9953, 87.2236) centre (-164.9134, 86.5532) ccw projected
  line L38 (-166.9295, 83.1275) -> (-169.0593, 84.3809) projected
  arc A38 (-169.0593, 84.3809) -> (-171.8092, 82.2265) centre (-105.17, 0) ccw projected
  line L39 (-171.8092, 82.2265) -> (-171.1019, 79.8586) projected
  arc A39 (-176.4991, 75.0771) -> (-171.1019, 79.8586) centre (-174.9106, 78.7209) ccw projected
  line L40 (-176.4991, 75.0771) -> (-178.7645, 76.0647) projected
  arc A40 (-178.7645, 76.0647) -> (-181.2347, 73.5945) centre (-105.17, 0) ccw projected
  line L41 (-181.2347, 73.5945) -> (-180.2471, 71.3291) projected
  arc A41 (-185.0286, 65.9319) -> (-180.2471, 71.3291) centre (-183.8909, 69.7406) ccw projected
  line L42 (-185.0286, 65.9319) -> (-187.3965, 66.6392) projected
  arc A42 (-187.3965, 66.6392) -> (-189.5509, 63.8893) centre (-105.17, 0) ccw projected
  line L43 (-189.5509, 63.8893) -> (-188.2975, 61.7595) projected
  arc A43 (-192.3936, 55.8253) -> (-188.2975, 61.7595) centre (-191.7232, 59.7434) ccw projected
  line L44 (-192.3936, 55.8253) -> (-194.8294, 56.2421) projected
  arc A44 (-194.8294, 56.2421) -> (-196.6367, 53.2525) centre (-105.17, 0) ccw projected
  line L45 (-196.6367, 53.2525) -> (-195.1357, 51.2893) projected
  arc A45 (-198.4866, 44.9046) -> (-195.1357, 51.2893) centre (-198.2934, 48.8749) ccw projected
  line L46 (-198.4866, 44.9046) -> (-200.9549, 45.0247) projected
  arc A46 (-200.9549, 45.0247) -> (-202.3887, 41.8391) centre (-105.17, 0) ccw projected
  line L47 (-202.3887, 41.8391) -> (-200.662, 40.0712) projected
  arc A47 (-203.2189, 33.3292) -> (-200.662, 40.0712) centre (-203.5057, 37.2938) ccw projected
  line L48 (-203.2189, 33.3292) -> (-205.6837, 33.1509) projected
  arc A48 (-205.6837, 33.1509) -> (-206.723, 29.8157) centre (-105.17, 0) ccw projected
  line L49 (-206.723, 29.8157) -> (-204.7958, 28.2688) projected
  arc A49 (-206.5214, 21.2677) -> (-204.7958, 28.2688) centre (-207.284, 25.1688) ccw projected
  line L50 (-206.5214, 21.2677) -> (-208.9467, 20.7936) projected
  arc A50 (-208.9467, 20.7936) -> (-209.5764, 17.3574) centre (-105.17, 0) ccw projected
  line L51 (-209.5764, 17.3574) -> (-207.4768, 16.0541) projected
  arc A51 (-208.3459, 8.896) -> (-207.4768, 16.0541) centre (-209.5732, 12.6768) ccw projected
  line L52 (-208.3459, 8.896) -> (-210.6965, 8.1331) projected
  arc A52 (-210.6965, 8.1331) -> (-210.9074, 4.646) centre (-105.17, 0) ccw projected
  line L53 (-210.9074, 4.646) -> (-208.666, 3.6053) projected
  arc A53 (-208.666, -3.6053) -> (-208.666, 3.6053) centre (-210.34, 0) ccw projected
  line L54 (-208.666, -3.6053) -> (-210.9074, -4.646) projected
  arc A54 (-210.9074, -4.646) -> (-210.6965, -8.1331) centre (-105.17, 0) ccw projected
  line L55 (-210.6965, -8.1331) -> (-208.3459, -8.896) projected
  arc A55 (-207.4768, -16.0541) -> (-208.3459, -8.896) centre (-209.5732, -12.6768) ccw projected
  line L56 (-207.4768, -16.0541) -> (-209.5764, -17.3574) projected
  arc A56 (-209.5764, -17.3574) -> (-208.9467, -20.7936) centre (-105.17, 0) ccw projected
  line L57 (-208.9467, -20.7936) -> (-206.5214, -21.2677) projected
  arc A57 (-204.7958, -28.2688) -> (-206.5214, -21.2677) centre (-207.284, -25.1688) ccw projected
  line L58 (-204.7958, -28.2688) -> (-206.723, -29.8157) projected
  arc A58 (-206.723, -29.8157) -> (-205.6837, -33.1509) centre (-105.17, 0) ccw projected
  line L59 (-205.6837, -33.1509) -> (-203.2189, -33.3292) projected
  arc A59 (-200.662, -40.0712) -> (-203.2189, -33.3292) centre (-203.5057, -37.2938) ccw projected
  line L60 (-200.662, -40.0712) -> (-202.3887, -41.8391) projected
  arc A60 (-202.3887, -41.8391) -> (-200.9549, -45.0247) centre (-105.17, 0) ccw projected
  line L61 (-200.9549, -45.0247) -> (-198.4866, -44.9046) projected
  arc A61 (-195.1357, -51.2893) -> (-198.4866, -44.9046) centre (-198.2934, -48.8749) ccw projected
  line L62 (-195.1357, -51.2893) -> (-196.6367, -53.2525) projected
  arc A62 (-196.6367, -53.2525) -> (-194.8294, -56.2421) centre (-105.17, 0) ccw projected
  line L63 (-194.8294, -56.2421) -> (-192.3936, -55.8253) projected
  arc A63 (-188.2975, -61.7595) -> (-192.3936, -55.8253) centre (-191.7232, -59.7434) ccw projected
  line L64 (-188.2975, -61.7595) -> (-189.5509, -63.8893) projected
  arc A64 (-189.5509, -63.8893) -> (-187.3965, -66.6392) centre (-105.17, 0) ccw projected
  line L65 (-187.3965, -66.6392) -> (-185.0286, -65.9319) projected
  arc A65 (-180.2471, -71.3291) -> (-185.0286, -65.9319) centre (-183.8909, -69.7406) ccw projected
  line L66 (-180.2471, -71.3291) -> (-181.2347, -73.5945) projected
  arc A66 (-181.2347, -73.5945) -> (-178.7645, -76.0647) centre (-105.17, 0) ccw projected
  line L67 (-178.7645, -76.0647) -> (-176.4991, -75.0771) projected
  arc A67 (-171.1019, -79.8586) -> (-176.4991, -75.0771) centre (-174.9106, -78.7209) ccw projected
  line L68 (-171.1019, -79.8586) -> (-171.8092, -82.2265) projected
  arc A68 (-171.8092, -82.2265) -> (-169.0593, -84.3809) centre (-105.17, 0) ccw projected
  line L69 (-169.0593, -84.3809) -> (-166.9295, -83.1275) projected
  arc A69 (-160.9953, -87.2236) -> (-166.9295, -83.1275) centre (-164.9134, -86.5532) ccw projected
  line L70 (-160.9953, -87.2236) -> (-161.4121, -89.6594) projected
  arc A70 (-161.4121, -89.6594) -> (-158.4225, -91.4667) centre (-105.17, 0) ccw projected
  line L71 (-158.4225, -91.4667) -> (-156.4593, -89.9657) projected
  arc A71 (-150.0746, -93.3166) -> (-156.4593, -89.9657) centre (-154.0449, -93.1234) ccw projected
  line L72 (-150.0746, -93.3166) -> (-150.1947, -95.7849) projected
  arc A72 (-150.1947, -95.7849) -> (-147.0091, -97.2187) centre (-105.17, 0) ccw projected
  line L73 (-147.0091, -97.2187) -> (-145.2412, -95.492) projected
  arc A73 (-138.4992, -98.0489) -> (-145.2412, -95.492) centre (-142.4638, -98.3357) ccw projected
  line L74 (-138.4992, -98.0489) -> (-138.3209, -100.5137) projected
  arc A74 (-138.3209, -100.5137) -> (-134.9857, -101.553) centre (-105.17, 0) ccw projected
  line L75 (-134.9857, -101.553) -> (-133.4388, -99.6258) projected
  arc A75 (-126.4377, -101.3514) -> (-133.4388, -99.6258) centre (-130.3388, -102.114) ccw projected
  line L76 (-126.4377, -101.3514) -> (-125.9636, -103.7767) projected
  arc A76 (-125.9636, -103.7767) -> (-122.5274, -104.4064) centre (-105.17, 0) ccw projected
  line L77 (-122.5274, -104.4064) -> (-121.2241, -102.3068) projected
  arc A77 (-114.066, -103.1759) -> (-121.2241, -102.3068) centre (-117.8468, -104.4032) ccw projected
  line L78 (-114.066, -103.1759) -> (-113.3031, -105.5265) projected
  arc A78 (-113.3031, -105.5265) -> (-109.816, -105.7374) centre (-105.17, 0) ccw projected
  line L79 (-109.816, -105.7374) -> (-108.7753, -103.496) projected
  arc A79 (-101.5647, -103.496) -> (-108.7753, -103.496) centre (-105.17, -105.17) ccw projected
  line L80 (-101.5647, -103.496) -> (-100.524, -105.7374) projected
  arc A80 (-100.524, -105.7374) -> (-97.0369, -105.5265) centre (-105.17, 0) ccw projected
  line L81 (-97.0369, -105.5265) -> (-96.274, -103.1759) projected
  arc A81 (-89.1159, -102.3068) -> (-96.274, -103.1759) centre (-92.4932, -104.4032) ccw projected
  line L82 (-89.1159, -102.3068) -> (-87.8126, -104.4064) projected
  arc A82 (-87.8126, -104.4064) -> (-84.3764, -103.7767) centre (-105.17, 0) ccw projected
  line L83 (-84.3764, -103.7767) -> (-83.9023, -101.3514) projected
  arc A83 (-76.9012, -99.6258) -> (-83.9023, -101.3514) centre (-80.0012, -102.114) ccw projected
  line L84 (-76.9012, -99.6258) -> (-75.3543, -101.553) projected
  arc A84 (-75.3543, -101.553) -> (-72.0191, -100.5137) centre (-105.17, 0) ccw projected
  line L85 (-72.0191, -100.5137) -> (-71.8408, -98.0489) projected
  arc A85 (-65.0988, -95.492) -> (-71.8408, -98.0489) centre (-67.8762, -98.3357) ccw projected
  line L86 (-65.0988, -95.492) -> (-63.3309, -97.2187) projected
  arc A86 (-63.3309, -97.2187) -> (-60.1453, -95.7849) centre (-105.17, 0) ccw projected
  line L87 (-60.1453, -95.7849) -> (-60.2654, -93.3166) projected
  arc A87 (-53.8807, -89.9657) -> (-60.2654, -93.3166) centre (-56.2951, -93.1234) ccw projected
  line L88 (-53.8807, -89.9657) -> (-51.9175, -91.4667) projected
  arc A88 (-51.9175, -91.4667) -> (-48.9279, -89.6594) centre (-105.17, 0) ccw projected
  line L89 (-48.9279, -89.6594) -> (-49.3447, -87.2236) projected
  arc A89 (-43.4105, -83.1275) -> (-49.3447, -87.2236) centre (-45.4266, -86.5532) ccw projected
  line L90 (-43.4105, -83.1275) -> (-41.2807, -84.3809) projected
  arc A90 (-41.2807, -84.3809) -> (-38.5308, -82.2265) centre (-105.17, 0) ccw projected
  line L91 (-38.5308, -82.2265) -> (-39.2381, -79.8586) projected
  arc A91 (-33.8409, -75.0771) -> (-39.2381, -79.8586) centre (-35.4294, -78.7209) ccw projected
  line L92 (-33.8409, -75.0771) -> (-31.5755, -76.0647) projected
  arc A92 (-31.5755, -76.0647) -> (-29.1053, -73.5945) centre (-105.17, 0) ccw projected
  line L93 (-29.1053, -73.5945) -> (-30.0929, -71.3291) projected
  arc A93 (-25.3114, -65.9319) -> (-30.0929, -71.3291) centre (-26.4491, -69.7406) ccw projected
  line L94 (-25.3114, -65.9319) -> (-22.9435, -66.6392) projected
  arc A94 (-22.9435, -66.6392) -> (-20.7891, -63.8893) centre (-105.17, 0) ccw projected
  line L95 (-20.7891, -63.8893) -> (-22.0425, -61.7595) projected
  arc A95 (-17.9464, -55.8253) -> (-22.0425, -61.7595) centre (-18.6168, -59.7434) ccw projected
  line L96 (-17.9464, -55.8253) -> (-15.5106, -56.2421) projected
  arc A96 (-15.5106, -56.2421) -> (-13.7033, -53.2525) centre (-105.17, 0) ccw projected
  line L97 (-13.7033, -53.2525) -> (-15.2043, -51.2893) projected
  arc A97 (-11.8534, -44.9046) -> (-15.2043, -51.2893) centre (-12.0466, -48.8749) ccw projected
  line L98 (-11.8534, -44.9046) -> (-9.3851, -45.0247) projected
  arc A98 (-9.3851, -45.0247) -> (-7.9513, -41.8391) centre (-105.17, 0) ccw projected
  line L99 (-7.9513, -41.8391) -> (-9.678, -40.0712) projected
  arc A99 (-7.1211, -33.3292) -> (-9.678, -40.0712) centre (-6.8343, -37.2938) ccw projected
  line L100 (-7.1211, -33.3292) -> (-4.6563, -33.1509) projected
  arc A100 (-4.6563, -33.1509) -> (-3.617, -29.8157) centre (-105.17, 0) ccw projected
  line L101 (-3.617, -29.8157) -> (-5.5442, -28.2688) projected
  arc A101 (-3.8186, -21.2677) -> (-5.5442, -28.2688) centre (-3.056, -25.1688) ccw projected
  line L102 (-3.8186, -21.2677) -> (-1.3933, -20.7936) projected
  arc A102 (-1.3933, -20.7936) -> (-0.7636, -17.3574) centre (-105.17, 0) ccw projected
  line L103 (-0.7636, -17.3574) -> (-2.8632, -16.0541) projected
  arc A103 (-1.9941, -8.896) -> (-2.8632, -16.0541) centre (-0.7668, -12.6768) ccw projected
  circle A104 centre (-105.17, 0) radius 8.5 projected
  circle A105 centre (-105.17, 0) radius 8.5 projected
  line L104 (-105.1559, -17.7) -> (-105.1559, -15.7)
  arc A106 (-102.5059, -17.4984) -> (-107.8059, -17.5026) centre (-105.1551, -18.5504) ccw
  line L105 (-107.8059, -17.1739) -> (-107.8059, -18.2261) construction
  line L106 (-102.5059, -18.2261) -> (-102.5059, -17.1739) construction
  line L107 (-107.8059, -18.2261) -> (-102.5059, -18.2261) construction
  line L108 (-107.8059, -17.1739) -> (-102.5059, -18.2261) construction
  line L109 (-102.5059, -17.1739) -> (-107.8059, -18.2261) construction
  line L110 (-102.5059, -17.1739) -> (-107.8059, -17.1739) construction
  arc A107 (-121.6561, 6.442) -> (-119.0098, 11.0341) centre (-121.2426, 9.2623) ccw
  arc A108 (-107.8341, 17.4984) -> (-102.5341, 17.5026) centre (-105.1849, 18.5504) ccw
  arc A109 (-91.348, 11.0563) -> (-88.6943, 6.4685) centre (-89.1123, 9.2881) ccw
  arc A110 (-88.6839, -6.442) -> (-91.3302, -11.0341) centre (-89.0974, -9.2623) ccw
  arc A111 (-118.992, -11.0563) -> (-121.6457, -6.4685) centre (-121.2277, -9.2881) ccw
  circle A112 centre (-105.17, 0) radius 20
  circle A113 centre (-105.17, 0) radius 17.7
  circle A114 centre (-105.17, 0) radius 8.5
  circle A115 centre (-105.17, 0) radius 24.5
  circle A116 centre (-105.17, 0) radius 23
  circle A117 centre (-105.17, 0) radius 24.5
  circle A118 centre (-105.17, 0) radius 22.5
  point P0 (-118.7736, 7.8378)
  point P1 (-105.1841, 15.7)
  point P2 (-91.5804, 7.8622)
  point P3 (-91.5664, -7.8378)
  point P4 (-118.7596, -7.8622)
  point P5 (-91.3302, -11.0341)
  point P6 (-88.6839, -6.442)
  point P7 (-88.6943, 6.4685)
  point P8 (-91.348, 11.0563)
  point P9 (-102.5341, 17.5026)
  point P10 (-107.8341, 17.4984)
  point P11 (-119.0098, 11.0341)
  point P12 (-121.6561, 6.442)
  point P13 (-121.6457, -6.4685)
  dimension "d20" = 35.4
  dimension "d21" = 2
  dimension "d22" = 5.3
  dimension "d23" = 360
  dimension "d24" = 40
  dimension "d25" = 49
  dimension "d26" = 46
  dimension "d29" = 2
extrude "押し出し2" cut sketch "スケッチ4" against normal through all contours A106 A113 A111 A107 A108 A109 A110
sketch "スケッチ5" plane through (3.2, 18.9574, -103.4473) normal (1, 0, 0) x (0, 0.180255, -0.9836199)
  circle A0 centre (-107.7065, 69.9311) radius 15
  circle A1 centre (-105.17, 0) radius 90
  circle A2 centre (-105.17, 0) radius 30
  dimension "d30" = 30
  dimension "d31" = 180
  dimension "d32" = 60
extrude "押し出し3" cut sketch "スケッチ5" against normal blind 0.4
extrude "押し出し4" cut sketch "スケッチ5" against normal through all contours A0
pattern_circular "円形状パターン1" count 6 over 360 about axis through (3.2, 0, 0) along (-1, 0, 0) of "押し出し4"
sketch "スケッチ6" plane through (2.8, 0, 0) normal (1, 0, 0) x (0, 0, -1)
  circle A0 centre (-15.1004, 68.3284) radius 15 projected
  circle A1 centre (-66.7243, 21.0869) radius 15 projected
  line L0 (-66.7243, 21.0869) -> (-15.1004, 68.3284)
  circle A2 centre (-31.4807, 34.4011) radius 10
  point P0 (0, 0)
  dimension "d40" = 20
extrude "押し出し5" cut sketch "スケッチ6" against normal through all contours A2
pattern_circular "円形状パターン2" count 6 over 360 about axis through (3.2, 0, 0) along (-1, 0, 0) of "押し出し5"
sketch "スケッチ7" plane through (2.8, 0, 0) normal (1, 0, 0) x (0, 0, -1)
  circle A0 centre (0, 0) radius 34.0862
  circle A1 centre (0, 0) radius 115.853
extrude "押し出し6" cut sketch "スケッチ7" along normal mid plane 10
properties part number "KANA40A52D17_6-D25_PCD124.6(H 7 D 0/+0.1 25 N/A)"
